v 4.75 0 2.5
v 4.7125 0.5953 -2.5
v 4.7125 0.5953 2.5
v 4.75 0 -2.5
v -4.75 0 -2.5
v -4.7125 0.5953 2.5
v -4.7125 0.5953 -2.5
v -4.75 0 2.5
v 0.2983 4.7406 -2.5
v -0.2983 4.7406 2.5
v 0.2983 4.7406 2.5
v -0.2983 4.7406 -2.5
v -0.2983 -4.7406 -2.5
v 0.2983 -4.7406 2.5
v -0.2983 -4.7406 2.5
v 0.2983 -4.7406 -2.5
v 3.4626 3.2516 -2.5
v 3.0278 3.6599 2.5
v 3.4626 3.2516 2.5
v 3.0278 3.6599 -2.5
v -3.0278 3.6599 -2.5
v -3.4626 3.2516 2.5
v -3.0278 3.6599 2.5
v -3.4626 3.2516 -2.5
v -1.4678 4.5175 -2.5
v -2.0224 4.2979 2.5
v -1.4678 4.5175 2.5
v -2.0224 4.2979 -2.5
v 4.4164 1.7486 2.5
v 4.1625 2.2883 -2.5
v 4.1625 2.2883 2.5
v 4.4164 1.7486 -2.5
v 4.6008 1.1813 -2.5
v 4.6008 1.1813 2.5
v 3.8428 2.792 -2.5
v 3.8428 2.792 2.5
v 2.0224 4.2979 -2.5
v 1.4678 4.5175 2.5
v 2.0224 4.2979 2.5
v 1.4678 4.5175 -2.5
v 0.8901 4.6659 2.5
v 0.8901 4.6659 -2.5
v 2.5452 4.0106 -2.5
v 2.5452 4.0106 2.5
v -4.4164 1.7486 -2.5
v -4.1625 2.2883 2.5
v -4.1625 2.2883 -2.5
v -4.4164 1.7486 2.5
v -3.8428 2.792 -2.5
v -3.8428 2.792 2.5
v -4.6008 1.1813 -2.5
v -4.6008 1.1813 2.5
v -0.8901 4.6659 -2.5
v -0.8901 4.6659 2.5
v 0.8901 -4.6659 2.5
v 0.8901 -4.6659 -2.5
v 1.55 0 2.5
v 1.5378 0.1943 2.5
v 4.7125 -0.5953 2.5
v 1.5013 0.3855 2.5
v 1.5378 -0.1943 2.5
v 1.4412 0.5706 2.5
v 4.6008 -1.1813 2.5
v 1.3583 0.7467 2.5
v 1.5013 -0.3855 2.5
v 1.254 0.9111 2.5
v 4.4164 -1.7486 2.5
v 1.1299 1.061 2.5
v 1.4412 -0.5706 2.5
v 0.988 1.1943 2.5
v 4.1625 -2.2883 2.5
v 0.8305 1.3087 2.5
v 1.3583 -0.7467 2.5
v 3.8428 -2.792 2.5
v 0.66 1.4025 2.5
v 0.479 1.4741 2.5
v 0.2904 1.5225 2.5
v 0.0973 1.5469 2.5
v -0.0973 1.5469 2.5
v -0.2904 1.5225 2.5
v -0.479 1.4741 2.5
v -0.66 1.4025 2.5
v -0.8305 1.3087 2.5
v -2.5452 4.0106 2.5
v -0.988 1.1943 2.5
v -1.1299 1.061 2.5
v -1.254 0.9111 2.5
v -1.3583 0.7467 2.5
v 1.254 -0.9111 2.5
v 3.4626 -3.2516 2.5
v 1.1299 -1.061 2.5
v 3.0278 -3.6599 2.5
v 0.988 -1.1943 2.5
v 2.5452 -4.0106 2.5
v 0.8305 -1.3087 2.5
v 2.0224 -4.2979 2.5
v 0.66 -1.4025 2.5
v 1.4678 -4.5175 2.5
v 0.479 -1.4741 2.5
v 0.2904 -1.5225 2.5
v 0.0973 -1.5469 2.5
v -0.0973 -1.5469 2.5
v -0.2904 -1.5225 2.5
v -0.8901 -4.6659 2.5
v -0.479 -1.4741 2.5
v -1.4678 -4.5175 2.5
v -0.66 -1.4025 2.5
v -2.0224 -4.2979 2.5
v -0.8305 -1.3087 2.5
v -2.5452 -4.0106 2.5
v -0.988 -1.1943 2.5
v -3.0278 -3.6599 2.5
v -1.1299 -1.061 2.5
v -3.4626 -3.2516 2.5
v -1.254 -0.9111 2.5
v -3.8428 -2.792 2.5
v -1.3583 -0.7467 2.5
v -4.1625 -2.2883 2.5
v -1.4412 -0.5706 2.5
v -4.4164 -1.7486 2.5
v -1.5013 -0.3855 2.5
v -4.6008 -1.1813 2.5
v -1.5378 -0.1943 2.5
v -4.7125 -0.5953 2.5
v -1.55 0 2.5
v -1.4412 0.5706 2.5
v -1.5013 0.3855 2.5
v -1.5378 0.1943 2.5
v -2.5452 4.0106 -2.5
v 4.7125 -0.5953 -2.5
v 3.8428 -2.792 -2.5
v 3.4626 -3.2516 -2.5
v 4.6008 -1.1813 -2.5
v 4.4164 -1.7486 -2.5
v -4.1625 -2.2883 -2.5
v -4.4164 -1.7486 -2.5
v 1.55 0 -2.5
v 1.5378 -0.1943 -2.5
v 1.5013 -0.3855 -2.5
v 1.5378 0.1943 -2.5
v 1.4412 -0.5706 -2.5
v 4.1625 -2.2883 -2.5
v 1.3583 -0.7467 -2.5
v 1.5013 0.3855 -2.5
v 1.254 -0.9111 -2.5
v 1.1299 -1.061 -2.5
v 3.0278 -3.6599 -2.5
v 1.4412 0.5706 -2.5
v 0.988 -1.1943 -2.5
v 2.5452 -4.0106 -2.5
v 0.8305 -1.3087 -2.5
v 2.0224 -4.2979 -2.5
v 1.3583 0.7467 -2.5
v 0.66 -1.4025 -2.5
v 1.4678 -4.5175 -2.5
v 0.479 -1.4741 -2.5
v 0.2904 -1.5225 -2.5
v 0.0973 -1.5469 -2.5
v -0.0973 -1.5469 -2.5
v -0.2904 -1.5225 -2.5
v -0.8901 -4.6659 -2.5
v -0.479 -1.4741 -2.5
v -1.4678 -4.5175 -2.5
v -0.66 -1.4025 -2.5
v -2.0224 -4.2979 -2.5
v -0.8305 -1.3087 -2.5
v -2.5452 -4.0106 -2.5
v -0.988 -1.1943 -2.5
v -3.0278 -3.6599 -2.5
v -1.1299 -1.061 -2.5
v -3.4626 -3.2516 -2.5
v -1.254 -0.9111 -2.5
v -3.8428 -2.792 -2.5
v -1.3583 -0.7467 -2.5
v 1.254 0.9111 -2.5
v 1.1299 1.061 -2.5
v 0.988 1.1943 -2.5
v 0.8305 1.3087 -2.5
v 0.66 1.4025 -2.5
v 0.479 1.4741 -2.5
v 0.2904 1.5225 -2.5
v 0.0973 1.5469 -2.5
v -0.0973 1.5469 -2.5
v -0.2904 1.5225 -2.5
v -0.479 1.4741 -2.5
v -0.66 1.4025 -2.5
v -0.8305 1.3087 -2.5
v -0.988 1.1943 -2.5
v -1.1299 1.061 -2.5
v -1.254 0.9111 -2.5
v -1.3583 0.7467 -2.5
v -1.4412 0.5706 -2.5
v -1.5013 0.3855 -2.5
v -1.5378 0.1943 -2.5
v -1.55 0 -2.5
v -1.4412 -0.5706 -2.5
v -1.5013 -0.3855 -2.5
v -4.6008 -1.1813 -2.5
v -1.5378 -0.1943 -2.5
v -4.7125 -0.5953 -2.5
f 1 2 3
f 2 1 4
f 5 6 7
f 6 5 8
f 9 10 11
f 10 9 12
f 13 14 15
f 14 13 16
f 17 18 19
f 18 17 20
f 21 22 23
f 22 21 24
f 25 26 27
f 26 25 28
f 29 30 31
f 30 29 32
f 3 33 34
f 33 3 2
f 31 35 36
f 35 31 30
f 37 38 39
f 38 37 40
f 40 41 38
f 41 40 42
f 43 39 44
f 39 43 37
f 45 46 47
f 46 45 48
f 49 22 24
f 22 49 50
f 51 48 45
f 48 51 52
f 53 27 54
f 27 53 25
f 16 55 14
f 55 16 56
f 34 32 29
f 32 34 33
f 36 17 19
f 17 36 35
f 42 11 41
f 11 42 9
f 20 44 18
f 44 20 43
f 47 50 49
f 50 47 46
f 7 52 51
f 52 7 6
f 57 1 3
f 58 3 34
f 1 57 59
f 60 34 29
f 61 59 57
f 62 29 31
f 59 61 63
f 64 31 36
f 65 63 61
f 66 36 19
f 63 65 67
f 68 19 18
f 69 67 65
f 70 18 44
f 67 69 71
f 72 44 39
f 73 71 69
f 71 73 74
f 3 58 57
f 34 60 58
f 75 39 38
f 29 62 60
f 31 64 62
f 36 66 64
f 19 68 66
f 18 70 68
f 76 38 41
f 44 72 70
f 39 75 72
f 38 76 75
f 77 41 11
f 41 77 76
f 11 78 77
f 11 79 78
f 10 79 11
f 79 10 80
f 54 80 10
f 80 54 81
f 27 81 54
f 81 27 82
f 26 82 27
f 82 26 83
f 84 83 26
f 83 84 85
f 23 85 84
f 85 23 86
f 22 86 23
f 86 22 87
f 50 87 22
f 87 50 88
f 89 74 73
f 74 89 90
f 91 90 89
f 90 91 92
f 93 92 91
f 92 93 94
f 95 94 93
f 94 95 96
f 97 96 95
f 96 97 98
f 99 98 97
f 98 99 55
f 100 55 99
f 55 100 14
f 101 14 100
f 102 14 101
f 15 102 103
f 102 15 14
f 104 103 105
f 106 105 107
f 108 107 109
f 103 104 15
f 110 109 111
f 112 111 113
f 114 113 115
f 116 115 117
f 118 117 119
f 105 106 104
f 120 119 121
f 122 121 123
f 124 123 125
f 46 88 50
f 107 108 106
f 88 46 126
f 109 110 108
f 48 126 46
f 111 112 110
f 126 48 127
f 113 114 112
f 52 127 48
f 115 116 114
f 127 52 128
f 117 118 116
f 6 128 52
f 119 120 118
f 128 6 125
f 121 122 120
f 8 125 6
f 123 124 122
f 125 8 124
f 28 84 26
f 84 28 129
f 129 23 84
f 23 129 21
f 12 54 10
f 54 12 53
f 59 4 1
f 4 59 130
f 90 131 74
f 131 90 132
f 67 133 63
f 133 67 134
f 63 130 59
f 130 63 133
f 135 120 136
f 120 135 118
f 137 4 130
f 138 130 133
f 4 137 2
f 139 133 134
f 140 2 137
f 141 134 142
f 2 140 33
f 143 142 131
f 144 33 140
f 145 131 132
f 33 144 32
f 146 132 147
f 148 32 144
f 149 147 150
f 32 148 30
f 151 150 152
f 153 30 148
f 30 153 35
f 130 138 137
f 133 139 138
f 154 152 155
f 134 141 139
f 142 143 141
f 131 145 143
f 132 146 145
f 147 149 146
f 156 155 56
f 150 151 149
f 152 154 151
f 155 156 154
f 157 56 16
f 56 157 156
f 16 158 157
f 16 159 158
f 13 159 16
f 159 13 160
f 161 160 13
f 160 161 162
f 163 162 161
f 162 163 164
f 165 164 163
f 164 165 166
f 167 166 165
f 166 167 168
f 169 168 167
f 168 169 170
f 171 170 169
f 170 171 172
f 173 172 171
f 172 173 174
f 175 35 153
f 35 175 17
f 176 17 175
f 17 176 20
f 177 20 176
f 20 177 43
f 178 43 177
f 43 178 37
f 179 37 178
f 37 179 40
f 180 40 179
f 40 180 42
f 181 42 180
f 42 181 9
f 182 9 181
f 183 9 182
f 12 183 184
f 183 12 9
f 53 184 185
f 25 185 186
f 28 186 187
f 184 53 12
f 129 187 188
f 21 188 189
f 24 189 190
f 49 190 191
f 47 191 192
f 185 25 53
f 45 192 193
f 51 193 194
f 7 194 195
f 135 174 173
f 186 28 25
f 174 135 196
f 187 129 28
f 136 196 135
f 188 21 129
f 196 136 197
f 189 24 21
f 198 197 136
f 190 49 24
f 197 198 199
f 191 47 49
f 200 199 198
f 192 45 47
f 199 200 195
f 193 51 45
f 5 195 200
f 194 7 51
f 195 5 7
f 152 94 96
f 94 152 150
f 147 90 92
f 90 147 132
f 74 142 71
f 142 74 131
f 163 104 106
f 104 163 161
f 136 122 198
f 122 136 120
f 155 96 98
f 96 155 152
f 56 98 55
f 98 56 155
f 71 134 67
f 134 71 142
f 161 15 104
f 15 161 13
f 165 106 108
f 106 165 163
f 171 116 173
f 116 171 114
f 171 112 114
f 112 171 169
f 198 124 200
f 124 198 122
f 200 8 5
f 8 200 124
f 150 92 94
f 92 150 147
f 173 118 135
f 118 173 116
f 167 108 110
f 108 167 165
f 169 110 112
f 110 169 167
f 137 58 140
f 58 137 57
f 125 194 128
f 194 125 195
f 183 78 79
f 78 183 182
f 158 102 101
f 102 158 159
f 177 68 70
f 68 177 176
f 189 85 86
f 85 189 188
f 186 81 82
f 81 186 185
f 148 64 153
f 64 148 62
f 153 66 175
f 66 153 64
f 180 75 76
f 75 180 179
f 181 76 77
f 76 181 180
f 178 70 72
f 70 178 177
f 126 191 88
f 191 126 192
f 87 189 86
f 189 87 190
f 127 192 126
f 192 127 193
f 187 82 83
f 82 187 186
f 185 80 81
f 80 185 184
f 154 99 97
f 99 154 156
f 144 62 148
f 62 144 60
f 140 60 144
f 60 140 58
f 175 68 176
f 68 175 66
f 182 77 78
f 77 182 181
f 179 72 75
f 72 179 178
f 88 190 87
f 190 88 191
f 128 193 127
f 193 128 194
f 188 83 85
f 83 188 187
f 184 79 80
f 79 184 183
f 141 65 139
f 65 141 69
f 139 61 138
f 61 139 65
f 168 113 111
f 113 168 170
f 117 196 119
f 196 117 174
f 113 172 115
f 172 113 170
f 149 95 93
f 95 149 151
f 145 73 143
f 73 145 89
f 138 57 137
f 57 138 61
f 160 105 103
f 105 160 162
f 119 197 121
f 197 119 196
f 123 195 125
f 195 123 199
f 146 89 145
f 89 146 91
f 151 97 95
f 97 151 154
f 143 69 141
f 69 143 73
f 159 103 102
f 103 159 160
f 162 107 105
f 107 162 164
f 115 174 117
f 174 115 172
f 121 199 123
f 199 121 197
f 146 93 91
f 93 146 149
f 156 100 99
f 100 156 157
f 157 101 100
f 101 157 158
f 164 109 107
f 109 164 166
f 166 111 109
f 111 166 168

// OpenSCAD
$fn = 50;


difference() {
	union() {
		translate(v = [0, 0, -2.5000000000]) {
			cylinder(h = 5, r = 4.7500000000);
		}
	}
	union() {
		translate(v = [0, 0, -100.0000000000]) {
			cylinder(h = 200, r = 1.5500000000);
		}
	}
}
